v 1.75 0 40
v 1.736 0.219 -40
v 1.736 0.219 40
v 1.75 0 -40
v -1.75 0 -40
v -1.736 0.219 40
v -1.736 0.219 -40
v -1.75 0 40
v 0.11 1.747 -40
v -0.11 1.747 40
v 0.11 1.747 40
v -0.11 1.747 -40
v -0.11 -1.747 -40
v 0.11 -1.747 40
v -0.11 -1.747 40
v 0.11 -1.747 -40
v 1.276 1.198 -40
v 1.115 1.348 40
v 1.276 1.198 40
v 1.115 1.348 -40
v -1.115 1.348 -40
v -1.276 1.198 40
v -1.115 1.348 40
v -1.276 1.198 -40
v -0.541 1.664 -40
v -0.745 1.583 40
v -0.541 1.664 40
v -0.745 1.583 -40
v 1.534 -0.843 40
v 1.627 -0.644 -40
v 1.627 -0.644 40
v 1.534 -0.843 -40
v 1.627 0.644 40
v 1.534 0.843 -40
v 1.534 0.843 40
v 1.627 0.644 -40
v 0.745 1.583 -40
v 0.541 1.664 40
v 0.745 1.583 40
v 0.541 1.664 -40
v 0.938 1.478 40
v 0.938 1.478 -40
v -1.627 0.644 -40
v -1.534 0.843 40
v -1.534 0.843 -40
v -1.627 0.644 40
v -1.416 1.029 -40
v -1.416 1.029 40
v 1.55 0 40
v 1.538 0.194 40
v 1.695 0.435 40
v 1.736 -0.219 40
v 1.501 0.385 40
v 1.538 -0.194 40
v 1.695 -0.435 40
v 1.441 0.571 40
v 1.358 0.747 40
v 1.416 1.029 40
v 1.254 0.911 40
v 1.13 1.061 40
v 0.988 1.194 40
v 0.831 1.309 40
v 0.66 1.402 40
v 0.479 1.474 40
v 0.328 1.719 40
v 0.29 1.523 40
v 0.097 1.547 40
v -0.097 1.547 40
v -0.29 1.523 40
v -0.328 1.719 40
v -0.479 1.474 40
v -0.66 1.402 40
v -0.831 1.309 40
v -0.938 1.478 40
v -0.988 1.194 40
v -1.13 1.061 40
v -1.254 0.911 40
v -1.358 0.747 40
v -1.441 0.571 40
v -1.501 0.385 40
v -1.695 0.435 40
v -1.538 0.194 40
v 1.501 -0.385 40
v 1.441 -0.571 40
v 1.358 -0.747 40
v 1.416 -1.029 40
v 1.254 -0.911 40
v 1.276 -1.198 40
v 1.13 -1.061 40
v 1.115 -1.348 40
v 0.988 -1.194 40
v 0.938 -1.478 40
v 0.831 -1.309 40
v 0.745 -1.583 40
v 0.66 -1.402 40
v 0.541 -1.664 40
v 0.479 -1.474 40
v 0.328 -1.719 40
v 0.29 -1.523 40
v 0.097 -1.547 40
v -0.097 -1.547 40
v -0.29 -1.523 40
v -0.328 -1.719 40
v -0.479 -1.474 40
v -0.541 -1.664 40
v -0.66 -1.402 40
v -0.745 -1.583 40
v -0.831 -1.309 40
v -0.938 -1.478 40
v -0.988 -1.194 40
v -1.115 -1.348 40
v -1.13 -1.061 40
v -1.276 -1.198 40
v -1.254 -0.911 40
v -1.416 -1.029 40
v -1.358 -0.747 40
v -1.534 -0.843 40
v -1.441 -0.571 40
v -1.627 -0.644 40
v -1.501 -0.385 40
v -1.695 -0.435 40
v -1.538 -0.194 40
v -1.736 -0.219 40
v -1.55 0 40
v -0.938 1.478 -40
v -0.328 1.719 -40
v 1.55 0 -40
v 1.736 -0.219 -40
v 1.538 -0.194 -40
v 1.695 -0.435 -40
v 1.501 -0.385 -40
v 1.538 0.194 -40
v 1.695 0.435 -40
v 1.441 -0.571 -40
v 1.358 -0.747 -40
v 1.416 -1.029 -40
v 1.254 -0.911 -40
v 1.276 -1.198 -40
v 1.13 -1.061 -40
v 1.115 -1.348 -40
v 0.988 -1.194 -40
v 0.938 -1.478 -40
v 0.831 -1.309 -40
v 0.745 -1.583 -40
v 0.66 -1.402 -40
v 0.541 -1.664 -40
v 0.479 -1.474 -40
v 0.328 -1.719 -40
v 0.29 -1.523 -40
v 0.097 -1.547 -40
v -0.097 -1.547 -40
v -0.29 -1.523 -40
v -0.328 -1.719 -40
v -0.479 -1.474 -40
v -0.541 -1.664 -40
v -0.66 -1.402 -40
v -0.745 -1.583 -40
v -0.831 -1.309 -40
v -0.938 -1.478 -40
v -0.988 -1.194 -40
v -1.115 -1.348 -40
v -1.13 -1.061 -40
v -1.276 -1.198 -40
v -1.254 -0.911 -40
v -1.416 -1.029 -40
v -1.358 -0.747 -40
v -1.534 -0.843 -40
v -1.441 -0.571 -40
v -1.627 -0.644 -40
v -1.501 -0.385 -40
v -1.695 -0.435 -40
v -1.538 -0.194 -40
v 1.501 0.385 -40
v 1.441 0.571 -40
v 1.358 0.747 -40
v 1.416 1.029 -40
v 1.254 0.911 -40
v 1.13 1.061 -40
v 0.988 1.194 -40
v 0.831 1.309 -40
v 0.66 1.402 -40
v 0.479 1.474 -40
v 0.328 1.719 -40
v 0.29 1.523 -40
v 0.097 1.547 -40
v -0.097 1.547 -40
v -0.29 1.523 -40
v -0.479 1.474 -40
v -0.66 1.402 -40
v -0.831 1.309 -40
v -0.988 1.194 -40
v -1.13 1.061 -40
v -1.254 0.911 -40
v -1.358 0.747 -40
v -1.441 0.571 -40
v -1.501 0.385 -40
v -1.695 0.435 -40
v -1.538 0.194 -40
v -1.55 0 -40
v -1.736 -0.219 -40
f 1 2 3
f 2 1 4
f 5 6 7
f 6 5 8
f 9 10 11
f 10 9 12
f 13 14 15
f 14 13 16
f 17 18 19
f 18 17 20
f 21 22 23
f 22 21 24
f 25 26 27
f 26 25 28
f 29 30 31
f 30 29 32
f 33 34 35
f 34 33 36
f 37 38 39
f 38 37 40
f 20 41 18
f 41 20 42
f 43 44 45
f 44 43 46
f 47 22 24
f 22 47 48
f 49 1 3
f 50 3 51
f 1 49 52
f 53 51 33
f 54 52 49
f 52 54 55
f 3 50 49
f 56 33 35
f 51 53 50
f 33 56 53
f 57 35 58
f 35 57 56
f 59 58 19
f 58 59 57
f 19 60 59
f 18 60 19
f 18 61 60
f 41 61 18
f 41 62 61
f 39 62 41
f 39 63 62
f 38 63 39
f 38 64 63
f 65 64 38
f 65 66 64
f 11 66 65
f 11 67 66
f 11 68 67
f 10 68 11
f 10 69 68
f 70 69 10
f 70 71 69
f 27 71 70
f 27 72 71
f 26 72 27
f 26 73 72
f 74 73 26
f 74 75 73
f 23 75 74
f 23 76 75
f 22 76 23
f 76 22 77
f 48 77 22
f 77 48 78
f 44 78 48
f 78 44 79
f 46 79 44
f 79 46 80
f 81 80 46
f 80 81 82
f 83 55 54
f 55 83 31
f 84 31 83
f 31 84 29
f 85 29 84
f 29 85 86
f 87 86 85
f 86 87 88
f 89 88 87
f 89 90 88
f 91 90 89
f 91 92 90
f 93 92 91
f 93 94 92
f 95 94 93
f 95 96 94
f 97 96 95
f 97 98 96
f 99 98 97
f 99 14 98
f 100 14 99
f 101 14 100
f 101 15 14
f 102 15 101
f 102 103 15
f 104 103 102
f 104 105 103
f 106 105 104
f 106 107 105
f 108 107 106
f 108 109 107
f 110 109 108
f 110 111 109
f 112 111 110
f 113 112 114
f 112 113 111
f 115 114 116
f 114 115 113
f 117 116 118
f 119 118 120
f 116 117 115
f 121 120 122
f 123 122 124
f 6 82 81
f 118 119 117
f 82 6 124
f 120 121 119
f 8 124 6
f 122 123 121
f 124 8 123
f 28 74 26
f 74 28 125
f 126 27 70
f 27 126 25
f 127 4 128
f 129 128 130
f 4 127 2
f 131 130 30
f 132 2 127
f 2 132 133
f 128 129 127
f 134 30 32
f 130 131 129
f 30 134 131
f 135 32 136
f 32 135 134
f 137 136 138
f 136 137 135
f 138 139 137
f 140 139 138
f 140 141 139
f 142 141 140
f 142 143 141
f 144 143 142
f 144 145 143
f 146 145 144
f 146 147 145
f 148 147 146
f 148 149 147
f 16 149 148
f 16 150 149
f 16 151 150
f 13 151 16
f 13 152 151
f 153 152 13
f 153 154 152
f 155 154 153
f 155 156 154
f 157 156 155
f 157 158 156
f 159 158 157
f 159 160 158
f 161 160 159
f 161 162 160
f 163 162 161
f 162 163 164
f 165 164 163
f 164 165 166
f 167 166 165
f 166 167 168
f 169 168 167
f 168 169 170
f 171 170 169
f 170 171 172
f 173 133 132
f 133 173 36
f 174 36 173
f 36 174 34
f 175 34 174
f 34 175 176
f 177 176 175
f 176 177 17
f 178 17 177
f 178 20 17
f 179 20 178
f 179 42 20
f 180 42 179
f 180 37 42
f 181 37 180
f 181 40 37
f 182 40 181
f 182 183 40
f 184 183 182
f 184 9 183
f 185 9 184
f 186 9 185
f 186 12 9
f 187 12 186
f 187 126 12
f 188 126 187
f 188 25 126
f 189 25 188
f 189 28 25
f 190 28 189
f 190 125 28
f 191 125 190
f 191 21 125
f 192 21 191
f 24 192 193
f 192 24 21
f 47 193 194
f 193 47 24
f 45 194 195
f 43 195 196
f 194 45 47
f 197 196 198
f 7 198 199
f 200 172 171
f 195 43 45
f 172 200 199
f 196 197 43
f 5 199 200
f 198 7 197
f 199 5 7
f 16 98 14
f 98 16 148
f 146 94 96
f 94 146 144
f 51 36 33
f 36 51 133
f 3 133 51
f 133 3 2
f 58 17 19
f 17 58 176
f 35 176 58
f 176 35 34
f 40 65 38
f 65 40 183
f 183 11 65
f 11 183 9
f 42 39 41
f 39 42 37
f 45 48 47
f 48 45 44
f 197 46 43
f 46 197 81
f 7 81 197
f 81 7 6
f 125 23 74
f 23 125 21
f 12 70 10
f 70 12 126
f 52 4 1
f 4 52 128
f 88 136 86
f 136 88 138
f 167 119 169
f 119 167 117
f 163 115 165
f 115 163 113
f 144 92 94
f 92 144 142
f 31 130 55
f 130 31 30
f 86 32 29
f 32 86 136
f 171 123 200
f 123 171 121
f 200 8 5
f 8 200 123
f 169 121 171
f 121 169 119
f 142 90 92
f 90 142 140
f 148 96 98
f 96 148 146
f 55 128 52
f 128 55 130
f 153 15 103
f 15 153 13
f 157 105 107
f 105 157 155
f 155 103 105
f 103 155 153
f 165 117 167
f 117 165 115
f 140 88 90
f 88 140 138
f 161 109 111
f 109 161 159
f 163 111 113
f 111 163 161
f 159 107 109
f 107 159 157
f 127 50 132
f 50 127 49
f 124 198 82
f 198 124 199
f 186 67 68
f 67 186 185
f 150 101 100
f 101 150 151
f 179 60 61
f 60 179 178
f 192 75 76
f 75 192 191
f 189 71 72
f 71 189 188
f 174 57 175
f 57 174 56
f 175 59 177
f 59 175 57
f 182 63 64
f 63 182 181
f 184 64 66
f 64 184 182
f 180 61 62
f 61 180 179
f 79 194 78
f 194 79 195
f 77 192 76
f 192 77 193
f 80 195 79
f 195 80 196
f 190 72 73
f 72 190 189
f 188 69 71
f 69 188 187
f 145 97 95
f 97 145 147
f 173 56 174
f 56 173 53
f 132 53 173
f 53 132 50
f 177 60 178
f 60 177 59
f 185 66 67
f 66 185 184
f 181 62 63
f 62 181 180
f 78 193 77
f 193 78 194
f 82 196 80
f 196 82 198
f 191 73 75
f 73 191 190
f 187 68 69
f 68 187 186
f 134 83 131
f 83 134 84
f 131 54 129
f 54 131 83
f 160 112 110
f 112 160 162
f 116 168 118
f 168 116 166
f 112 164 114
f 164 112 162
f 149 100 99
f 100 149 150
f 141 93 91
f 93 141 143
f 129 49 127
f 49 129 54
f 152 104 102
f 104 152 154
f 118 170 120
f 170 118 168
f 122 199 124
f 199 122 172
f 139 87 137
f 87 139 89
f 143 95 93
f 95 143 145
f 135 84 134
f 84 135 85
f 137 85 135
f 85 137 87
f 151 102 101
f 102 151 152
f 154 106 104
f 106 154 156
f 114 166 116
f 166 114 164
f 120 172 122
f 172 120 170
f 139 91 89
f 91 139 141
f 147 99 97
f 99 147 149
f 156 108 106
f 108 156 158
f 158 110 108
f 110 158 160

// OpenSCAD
$fn = 50;


difference() {
	union() {
		translate(v = [0, 0, -40.0000000000]) {
			cylinder(h = 80, r = 1.7500000000);
		}
	}
	union() {
		translate(v = [0, 0, -100.0000000000]) {
			cylinder(h = 200, r = 1.5500000000);
		}
	}
}
